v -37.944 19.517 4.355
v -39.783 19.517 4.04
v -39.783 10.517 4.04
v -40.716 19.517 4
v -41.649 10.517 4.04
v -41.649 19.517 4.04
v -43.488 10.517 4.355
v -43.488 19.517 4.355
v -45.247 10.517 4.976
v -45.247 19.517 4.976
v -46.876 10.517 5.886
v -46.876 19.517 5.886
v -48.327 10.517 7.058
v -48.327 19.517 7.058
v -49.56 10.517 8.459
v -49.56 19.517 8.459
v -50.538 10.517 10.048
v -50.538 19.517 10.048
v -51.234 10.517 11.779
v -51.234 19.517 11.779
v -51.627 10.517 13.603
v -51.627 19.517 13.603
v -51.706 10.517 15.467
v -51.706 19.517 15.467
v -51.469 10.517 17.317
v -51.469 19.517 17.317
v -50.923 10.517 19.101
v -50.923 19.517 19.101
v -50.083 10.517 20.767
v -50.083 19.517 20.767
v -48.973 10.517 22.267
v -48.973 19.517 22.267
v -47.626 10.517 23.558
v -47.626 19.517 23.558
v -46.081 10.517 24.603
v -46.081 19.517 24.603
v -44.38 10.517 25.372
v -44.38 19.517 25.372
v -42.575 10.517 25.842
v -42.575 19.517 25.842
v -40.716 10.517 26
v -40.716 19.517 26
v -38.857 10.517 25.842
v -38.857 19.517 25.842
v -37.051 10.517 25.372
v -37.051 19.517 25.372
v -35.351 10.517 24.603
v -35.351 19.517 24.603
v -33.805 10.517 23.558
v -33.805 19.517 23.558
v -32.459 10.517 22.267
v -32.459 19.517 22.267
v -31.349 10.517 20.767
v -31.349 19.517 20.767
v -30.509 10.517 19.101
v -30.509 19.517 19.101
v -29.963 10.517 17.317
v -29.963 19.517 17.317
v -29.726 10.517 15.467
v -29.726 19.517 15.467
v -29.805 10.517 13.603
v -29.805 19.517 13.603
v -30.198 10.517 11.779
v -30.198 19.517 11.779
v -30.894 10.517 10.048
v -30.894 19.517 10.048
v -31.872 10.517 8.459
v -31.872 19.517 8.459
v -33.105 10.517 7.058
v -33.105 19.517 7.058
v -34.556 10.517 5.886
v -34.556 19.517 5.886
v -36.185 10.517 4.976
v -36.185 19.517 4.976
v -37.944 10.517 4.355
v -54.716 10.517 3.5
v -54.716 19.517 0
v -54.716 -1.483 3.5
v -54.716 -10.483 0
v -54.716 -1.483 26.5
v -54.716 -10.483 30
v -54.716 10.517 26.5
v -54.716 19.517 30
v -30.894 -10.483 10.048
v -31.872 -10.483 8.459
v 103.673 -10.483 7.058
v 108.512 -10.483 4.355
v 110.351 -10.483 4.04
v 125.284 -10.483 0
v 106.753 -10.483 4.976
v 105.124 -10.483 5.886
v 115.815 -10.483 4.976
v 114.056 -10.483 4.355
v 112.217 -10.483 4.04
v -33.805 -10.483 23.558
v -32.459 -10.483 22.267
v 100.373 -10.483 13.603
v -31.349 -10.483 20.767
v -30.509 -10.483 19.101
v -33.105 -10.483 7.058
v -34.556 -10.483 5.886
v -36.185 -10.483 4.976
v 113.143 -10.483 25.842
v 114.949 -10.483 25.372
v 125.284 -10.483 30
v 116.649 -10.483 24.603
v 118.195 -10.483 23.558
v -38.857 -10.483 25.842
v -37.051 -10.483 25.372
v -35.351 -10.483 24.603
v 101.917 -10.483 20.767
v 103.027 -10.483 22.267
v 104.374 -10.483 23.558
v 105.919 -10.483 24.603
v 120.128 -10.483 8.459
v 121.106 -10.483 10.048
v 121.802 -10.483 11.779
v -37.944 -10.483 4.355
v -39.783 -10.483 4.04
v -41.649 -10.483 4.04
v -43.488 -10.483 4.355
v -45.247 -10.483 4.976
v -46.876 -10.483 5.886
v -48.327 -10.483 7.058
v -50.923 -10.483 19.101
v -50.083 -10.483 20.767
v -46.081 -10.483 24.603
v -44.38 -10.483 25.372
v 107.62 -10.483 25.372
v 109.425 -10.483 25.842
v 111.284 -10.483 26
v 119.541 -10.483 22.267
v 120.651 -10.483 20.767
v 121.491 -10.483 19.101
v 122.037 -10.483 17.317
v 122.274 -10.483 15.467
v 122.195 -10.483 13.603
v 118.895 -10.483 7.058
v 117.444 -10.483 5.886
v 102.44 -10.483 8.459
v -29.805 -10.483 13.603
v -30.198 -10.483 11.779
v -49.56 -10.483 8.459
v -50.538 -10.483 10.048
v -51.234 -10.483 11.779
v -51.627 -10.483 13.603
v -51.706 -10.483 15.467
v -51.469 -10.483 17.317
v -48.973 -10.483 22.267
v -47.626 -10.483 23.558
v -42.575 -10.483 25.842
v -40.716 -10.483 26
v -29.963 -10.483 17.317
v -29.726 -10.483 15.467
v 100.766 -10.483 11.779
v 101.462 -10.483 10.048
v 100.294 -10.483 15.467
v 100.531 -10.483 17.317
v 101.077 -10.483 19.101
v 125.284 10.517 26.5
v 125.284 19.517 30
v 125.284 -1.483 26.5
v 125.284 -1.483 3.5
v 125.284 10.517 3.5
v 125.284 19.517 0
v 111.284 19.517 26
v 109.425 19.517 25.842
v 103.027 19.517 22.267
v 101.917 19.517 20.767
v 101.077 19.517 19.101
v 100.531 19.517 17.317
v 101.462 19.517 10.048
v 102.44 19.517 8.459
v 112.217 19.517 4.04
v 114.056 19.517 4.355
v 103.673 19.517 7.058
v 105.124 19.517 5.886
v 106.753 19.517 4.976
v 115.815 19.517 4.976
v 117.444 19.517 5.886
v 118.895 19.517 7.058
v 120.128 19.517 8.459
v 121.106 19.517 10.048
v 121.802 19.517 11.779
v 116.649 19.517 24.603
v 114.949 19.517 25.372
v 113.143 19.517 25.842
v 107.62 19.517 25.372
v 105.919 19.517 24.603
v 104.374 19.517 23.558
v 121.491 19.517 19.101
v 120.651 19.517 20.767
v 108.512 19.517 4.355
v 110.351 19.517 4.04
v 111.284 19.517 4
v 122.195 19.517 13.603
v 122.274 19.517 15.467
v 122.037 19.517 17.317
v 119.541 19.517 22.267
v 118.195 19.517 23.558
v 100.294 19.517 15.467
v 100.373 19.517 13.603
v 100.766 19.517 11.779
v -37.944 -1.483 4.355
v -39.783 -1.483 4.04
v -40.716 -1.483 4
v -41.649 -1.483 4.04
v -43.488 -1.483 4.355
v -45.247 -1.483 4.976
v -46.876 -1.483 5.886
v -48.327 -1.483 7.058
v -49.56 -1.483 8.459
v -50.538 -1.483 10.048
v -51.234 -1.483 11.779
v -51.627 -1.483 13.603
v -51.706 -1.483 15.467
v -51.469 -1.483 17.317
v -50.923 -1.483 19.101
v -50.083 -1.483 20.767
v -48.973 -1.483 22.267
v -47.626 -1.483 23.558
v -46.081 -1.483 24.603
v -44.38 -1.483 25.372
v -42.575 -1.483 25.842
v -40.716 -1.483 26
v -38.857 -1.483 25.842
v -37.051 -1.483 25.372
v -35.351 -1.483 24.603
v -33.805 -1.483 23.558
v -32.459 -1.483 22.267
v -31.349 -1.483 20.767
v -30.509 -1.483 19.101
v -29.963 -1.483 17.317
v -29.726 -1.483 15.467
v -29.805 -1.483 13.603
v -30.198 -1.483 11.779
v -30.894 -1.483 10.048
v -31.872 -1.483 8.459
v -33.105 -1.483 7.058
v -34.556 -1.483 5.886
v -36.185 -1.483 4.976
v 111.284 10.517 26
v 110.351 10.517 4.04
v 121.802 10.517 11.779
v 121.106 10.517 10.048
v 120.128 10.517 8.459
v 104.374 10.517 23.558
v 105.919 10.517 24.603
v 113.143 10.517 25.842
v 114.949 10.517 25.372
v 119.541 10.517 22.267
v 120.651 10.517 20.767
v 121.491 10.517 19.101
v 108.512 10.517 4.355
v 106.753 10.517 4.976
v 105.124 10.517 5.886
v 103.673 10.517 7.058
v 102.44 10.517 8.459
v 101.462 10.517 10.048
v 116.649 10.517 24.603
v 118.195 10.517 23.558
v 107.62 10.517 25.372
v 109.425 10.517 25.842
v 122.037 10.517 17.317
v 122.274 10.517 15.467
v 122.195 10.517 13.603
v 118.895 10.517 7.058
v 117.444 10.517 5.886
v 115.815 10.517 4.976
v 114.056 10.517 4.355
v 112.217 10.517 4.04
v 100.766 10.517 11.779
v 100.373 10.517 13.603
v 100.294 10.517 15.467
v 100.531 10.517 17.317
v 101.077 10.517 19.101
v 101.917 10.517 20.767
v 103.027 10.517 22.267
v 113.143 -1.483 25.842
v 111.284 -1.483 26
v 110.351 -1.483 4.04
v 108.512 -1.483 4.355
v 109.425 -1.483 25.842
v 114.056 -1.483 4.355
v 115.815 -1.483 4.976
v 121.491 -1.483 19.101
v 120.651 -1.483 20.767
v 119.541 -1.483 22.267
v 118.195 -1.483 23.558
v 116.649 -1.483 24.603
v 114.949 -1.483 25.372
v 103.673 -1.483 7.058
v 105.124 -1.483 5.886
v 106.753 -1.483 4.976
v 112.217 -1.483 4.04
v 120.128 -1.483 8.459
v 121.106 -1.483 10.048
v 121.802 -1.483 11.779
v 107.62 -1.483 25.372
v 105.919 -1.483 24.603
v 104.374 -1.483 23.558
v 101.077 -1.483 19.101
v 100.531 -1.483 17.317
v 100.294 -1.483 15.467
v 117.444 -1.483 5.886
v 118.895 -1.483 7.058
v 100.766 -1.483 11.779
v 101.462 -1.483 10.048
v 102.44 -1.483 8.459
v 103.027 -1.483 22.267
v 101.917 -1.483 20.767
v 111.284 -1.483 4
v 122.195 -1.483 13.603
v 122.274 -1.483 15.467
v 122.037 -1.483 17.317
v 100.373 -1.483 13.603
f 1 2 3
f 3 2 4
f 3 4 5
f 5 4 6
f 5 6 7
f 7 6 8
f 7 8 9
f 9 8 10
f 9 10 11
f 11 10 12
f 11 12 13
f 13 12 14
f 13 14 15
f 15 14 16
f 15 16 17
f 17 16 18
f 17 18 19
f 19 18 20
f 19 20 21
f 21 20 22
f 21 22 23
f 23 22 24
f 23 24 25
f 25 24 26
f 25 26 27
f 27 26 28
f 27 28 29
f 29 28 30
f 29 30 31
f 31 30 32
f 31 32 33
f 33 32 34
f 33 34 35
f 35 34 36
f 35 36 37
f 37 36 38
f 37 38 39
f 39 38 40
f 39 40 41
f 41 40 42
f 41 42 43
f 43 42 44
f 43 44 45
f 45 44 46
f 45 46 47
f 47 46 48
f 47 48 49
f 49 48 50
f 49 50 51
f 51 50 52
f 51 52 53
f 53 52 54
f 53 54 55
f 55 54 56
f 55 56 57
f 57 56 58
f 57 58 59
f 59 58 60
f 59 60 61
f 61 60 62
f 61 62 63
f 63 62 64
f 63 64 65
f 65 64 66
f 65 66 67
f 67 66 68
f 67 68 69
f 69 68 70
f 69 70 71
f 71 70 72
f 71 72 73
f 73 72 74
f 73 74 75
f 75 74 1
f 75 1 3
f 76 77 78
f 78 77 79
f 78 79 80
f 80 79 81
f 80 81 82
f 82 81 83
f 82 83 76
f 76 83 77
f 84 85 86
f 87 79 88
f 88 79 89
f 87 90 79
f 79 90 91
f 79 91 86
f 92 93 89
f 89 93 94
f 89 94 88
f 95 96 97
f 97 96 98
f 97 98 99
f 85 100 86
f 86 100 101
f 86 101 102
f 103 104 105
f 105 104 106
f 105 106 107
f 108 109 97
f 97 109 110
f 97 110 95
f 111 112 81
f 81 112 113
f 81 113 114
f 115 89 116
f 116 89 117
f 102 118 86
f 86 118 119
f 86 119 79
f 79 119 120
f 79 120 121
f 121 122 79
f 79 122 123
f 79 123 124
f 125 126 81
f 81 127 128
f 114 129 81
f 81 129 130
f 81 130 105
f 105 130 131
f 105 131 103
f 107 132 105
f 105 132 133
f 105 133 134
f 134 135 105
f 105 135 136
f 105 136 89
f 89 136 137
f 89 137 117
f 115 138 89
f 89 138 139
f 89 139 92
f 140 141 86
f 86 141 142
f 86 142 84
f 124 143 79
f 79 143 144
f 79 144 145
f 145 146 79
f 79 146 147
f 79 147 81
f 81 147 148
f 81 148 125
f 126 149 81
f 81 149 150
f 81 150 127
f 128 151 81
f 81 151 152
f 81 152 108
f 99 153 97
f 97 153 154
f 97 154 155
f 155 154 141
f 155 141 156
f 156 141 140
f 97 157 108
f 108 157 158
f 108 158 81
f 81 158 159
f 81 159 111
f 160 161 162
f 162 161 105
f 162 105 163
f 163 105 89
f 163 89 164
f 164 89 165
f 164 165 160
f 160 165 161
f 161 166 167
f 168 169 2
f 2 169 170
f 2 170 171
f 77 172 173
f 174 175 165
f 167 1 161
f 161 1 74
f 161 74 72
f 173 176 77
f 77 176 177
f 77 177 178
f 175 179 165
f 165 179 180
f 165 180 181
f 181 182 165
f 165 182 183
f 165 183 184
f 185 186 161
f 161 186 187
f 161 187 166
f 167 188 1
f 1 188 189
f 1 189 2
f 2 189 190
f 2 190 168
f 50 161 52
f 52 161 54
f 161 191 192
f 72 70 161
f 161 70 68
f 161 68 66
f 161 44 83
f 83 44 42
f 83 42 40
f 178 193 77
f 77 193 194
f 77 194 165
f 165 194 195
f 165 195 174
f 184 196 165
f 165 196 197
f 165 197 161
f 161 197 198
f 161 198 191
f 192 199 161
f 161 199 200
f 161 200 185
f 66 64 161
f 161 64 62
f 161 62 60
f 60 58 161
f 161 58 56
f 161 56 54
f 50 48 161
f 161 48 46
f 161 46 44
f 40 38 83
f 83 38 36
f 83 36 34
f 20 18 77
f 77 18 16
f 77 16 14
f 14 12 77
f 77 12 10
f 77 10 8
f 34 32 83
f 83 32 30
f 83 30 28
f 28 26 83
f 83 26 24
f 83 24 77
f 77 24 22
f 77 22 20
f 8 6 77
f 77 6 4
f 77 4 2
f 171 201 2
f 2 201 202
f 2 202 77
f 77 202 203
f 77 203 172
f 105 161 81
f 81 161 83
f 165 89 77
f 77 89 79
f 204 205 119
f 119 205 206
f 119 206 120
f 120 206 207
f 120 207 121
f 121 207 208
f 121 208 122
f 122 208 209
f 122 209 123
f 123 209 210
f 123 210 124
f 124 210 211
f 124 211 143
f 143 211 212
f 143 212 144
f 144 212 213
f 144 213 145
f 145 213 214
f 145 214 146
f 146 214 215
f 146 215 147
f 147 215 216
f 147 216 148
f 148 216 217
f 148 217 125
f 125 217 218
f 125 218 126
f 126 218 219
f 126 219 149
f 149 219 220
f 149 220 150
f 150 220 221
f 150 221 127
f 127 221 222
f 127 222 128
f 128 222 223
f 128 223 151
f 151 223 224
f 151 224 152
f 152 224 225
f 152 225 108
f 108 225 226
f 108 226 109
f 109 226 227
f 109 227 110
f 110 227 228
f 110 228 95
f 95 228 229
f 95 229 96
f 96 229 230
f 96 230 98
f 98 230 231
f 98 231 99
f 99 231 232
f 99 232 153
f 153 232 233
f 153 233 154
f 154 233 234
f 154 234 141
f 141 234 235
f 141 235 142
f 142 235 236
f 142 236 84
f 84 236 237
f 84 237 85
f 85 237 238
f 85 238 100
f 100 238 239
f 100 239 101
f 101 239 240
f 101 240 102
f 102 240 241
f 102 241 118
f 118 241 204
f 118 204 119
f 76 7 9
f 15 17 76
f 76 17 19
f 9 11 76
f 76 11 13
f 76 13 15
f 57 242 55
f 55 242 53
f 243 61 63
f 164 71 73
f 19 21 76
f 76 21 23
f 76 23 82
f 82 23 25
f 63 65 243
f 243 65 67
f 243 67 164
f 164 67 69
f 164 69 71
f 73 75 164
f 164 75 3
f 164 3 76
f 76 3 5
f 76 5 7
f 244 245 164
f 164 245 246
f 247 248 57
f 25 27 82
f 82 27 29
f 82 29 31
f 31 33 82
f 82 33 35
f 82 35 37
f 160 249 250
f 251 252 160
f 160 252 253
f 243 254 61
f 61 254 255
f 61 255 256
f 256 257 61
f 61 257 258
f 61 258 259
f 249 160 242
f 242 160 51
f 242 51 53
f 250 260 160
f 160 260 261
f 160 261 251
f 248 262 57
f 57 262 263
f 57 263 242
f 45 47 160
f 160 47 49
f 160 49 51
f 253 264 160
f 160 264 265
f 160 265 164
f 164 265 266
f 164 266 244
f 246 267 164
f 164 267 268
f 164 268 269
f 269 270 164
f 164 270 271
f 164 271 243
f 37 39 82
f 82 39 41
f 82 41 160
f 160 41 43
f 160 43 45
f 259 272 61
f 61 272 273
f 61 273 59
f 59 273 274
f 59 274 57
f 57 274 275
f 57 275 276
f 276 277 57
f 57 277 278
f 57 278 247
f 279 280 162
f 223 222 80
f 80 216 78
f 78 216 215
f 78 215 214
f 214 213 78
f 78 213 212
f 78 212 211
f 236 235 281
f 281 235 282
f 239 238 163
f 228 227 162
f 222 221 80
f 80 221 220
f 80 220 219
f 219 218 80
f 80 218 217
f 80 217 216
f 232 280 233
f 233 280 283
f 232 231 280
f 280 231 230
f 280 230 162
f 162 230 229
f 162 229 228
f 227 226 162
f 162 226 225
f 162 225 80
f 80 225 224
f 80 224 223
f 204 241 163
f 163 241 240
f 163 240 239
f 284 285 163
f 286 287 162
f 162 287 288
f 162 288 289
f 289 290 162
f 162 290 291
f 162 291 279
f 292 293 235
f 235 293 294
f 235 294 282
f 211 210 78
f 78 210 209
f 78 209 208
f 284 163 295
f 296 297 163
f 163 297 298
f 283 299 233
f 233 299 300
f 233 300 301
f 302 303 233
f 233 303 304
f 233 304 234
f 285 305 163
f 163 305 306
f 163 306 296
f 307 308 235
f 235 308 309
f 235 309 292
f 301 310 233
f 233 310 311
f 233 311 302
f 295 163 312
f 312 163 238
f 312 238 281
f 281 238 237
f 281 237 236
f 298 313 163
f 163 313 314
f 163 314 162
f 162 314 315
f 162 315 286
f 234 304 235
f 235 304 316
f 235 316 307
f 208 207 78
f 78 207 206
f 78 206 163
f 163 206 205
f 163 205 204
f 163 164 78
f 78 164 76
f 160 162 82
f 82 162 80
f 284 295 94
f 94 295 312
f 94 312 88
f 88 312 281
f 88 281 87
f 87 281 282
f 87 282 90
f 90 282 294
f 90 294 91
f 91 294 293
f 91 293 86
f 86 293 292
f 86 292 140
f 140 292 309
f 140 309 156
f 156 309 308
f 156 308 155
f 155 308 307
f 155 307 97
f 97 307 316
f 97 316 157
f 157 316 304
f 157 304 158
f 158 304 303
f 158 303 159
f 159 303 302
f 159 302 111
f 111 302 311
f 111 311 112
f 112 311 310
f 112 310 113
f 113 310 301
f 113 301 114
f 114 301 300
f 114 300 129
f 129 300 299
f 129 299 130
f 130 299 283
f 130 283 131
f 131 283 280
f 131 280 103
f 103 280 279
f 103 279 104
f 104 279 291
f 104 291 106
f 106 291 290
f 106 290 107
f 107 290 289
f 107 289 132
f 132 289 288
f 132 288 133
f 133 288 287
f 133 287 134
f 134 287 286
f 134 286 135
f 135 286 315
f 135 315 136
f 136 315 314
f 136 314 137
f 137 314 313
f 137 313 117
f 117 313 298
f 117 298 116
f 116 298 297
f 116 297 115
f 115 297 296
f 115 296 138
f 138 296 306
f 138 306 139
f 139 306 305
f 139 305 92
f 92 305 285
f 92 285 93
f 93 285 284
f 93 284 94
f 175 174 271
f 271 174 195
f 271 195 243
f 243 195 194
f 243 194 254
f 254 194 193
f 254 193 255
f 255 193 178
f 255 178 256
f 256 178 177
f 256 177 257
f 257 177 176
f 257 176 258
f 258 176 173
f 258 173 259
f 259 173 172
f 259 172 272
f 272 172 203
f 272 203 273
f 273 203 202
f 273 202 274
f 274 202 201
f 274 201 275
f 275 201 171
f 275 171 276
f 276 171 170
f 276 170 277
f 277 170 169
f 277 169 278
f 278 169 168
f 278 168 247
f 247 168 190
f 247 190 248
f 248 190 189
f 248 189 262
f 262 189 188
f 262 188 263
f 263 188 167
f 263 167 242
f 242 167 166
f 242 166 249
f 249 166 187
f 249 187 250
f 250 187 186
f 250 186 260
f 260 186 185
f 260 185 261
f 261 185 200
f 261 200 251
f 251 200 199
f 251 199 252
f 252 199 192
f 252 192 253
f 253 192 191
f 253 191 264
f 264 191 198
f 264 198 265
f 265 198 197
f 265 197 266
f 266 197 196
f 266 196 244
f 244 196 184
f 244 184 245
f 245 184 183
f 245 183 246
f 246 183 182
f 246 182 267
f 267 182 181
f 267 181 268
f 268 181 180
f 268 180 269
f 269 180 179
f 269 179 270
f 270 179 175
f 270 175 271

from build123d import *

# Parameters (mm, degrees)
SKETCH1_W               = 180
SKETCH1_H               = 30
BOSS_EXTRUDE1_DEPTH     = 30
SKETCH2_R               = 11
CUT_EXTRUDE1_DEPTH      = 1
CUT_EXTRUDE1_DEPTH_BACK = 31
SKETCH3_W               = 23
SKETCH3_H               = 12
CUT_EXTRUDE2_DEPTH      = 1
CUT_EXTRUDE2_DEPTH_BACK = 181
SKETCH6_R               = 11
CUT_EXTRUDE5_DEPTH      = 1
CUT_EXTRUDE5_DEPTH_BACK = 31


with BuildPart() as part:
    # Sketch1 → Boss-Extrude1 (new body)
    with BuildSketch(Plane.XY):
        with Locations((35.284090909, 4.517045455)):
            Rectangle(SKETCH1_W, SKETCH1_H)
    extrude(amount=BOSS_EXTRUDE1_DEPTH)

    # Sketch2 → Cut-Extrude1 (cut, two sides)
    with BuildSketch(Plane(origin=(0, 19.517045455, 0), x_dir=(1, 0, 0), z_dir=(0, 1, 0))) as cut_extrude1_sk:
        with Locations((-40.715909091, -15)):
            Circle(SKETCH2_R)
    extrude(amount=CUT_EXTRUDE1_DEPTH, mode=Mode.SUBTRACT)
    extrude(cut_extrude1_sk.sketch, amount=-CUT_EXTRUDE1_DEPTH_BACK, mode=Mode.SUBTRACT)

    # Sketch3 → Cut-Extrude2 (cut, two sides)
    with BuildSketch(Plane.ZY.offset(54.715909091)) as cut_extrude2_sk:
        with Locations((15, 4.517045455)):
            Rectangle(SKETCH3_W, SKETCH3_H)
    extrude(amount=CUT_EXTRUDE2_DEPTH, mode=Mode.SUBTRACT)
    extrude(cut_extrude2_sk.sketch, amount=-CUT_EXTRUDE2_DEPTH_BACK, mode=Mode.SUBTRACT)

    # Sketch6 → Cut-Extrude5 (cut, two sides)
    with BuildSketch(Plane(origin=(0, 19.517045455, 0), x_dir=(1, 0, 0), z_dir=(0, 1, 0))) as cut_extrude5_sk:
        with Locations((111.284090909, -15)):
            Circle(SKETCH6_R)
    extrude(amount=CUT_EXTRUDE5_DEPTH, mode=Mode.SUBTRACT)
    extrude(cut_extrude5_sk.sketch, amount=-CUT_EXTRUDE5_DEPTH_BACK, mode=Mode.SUBTRACT)


solid = part.part
